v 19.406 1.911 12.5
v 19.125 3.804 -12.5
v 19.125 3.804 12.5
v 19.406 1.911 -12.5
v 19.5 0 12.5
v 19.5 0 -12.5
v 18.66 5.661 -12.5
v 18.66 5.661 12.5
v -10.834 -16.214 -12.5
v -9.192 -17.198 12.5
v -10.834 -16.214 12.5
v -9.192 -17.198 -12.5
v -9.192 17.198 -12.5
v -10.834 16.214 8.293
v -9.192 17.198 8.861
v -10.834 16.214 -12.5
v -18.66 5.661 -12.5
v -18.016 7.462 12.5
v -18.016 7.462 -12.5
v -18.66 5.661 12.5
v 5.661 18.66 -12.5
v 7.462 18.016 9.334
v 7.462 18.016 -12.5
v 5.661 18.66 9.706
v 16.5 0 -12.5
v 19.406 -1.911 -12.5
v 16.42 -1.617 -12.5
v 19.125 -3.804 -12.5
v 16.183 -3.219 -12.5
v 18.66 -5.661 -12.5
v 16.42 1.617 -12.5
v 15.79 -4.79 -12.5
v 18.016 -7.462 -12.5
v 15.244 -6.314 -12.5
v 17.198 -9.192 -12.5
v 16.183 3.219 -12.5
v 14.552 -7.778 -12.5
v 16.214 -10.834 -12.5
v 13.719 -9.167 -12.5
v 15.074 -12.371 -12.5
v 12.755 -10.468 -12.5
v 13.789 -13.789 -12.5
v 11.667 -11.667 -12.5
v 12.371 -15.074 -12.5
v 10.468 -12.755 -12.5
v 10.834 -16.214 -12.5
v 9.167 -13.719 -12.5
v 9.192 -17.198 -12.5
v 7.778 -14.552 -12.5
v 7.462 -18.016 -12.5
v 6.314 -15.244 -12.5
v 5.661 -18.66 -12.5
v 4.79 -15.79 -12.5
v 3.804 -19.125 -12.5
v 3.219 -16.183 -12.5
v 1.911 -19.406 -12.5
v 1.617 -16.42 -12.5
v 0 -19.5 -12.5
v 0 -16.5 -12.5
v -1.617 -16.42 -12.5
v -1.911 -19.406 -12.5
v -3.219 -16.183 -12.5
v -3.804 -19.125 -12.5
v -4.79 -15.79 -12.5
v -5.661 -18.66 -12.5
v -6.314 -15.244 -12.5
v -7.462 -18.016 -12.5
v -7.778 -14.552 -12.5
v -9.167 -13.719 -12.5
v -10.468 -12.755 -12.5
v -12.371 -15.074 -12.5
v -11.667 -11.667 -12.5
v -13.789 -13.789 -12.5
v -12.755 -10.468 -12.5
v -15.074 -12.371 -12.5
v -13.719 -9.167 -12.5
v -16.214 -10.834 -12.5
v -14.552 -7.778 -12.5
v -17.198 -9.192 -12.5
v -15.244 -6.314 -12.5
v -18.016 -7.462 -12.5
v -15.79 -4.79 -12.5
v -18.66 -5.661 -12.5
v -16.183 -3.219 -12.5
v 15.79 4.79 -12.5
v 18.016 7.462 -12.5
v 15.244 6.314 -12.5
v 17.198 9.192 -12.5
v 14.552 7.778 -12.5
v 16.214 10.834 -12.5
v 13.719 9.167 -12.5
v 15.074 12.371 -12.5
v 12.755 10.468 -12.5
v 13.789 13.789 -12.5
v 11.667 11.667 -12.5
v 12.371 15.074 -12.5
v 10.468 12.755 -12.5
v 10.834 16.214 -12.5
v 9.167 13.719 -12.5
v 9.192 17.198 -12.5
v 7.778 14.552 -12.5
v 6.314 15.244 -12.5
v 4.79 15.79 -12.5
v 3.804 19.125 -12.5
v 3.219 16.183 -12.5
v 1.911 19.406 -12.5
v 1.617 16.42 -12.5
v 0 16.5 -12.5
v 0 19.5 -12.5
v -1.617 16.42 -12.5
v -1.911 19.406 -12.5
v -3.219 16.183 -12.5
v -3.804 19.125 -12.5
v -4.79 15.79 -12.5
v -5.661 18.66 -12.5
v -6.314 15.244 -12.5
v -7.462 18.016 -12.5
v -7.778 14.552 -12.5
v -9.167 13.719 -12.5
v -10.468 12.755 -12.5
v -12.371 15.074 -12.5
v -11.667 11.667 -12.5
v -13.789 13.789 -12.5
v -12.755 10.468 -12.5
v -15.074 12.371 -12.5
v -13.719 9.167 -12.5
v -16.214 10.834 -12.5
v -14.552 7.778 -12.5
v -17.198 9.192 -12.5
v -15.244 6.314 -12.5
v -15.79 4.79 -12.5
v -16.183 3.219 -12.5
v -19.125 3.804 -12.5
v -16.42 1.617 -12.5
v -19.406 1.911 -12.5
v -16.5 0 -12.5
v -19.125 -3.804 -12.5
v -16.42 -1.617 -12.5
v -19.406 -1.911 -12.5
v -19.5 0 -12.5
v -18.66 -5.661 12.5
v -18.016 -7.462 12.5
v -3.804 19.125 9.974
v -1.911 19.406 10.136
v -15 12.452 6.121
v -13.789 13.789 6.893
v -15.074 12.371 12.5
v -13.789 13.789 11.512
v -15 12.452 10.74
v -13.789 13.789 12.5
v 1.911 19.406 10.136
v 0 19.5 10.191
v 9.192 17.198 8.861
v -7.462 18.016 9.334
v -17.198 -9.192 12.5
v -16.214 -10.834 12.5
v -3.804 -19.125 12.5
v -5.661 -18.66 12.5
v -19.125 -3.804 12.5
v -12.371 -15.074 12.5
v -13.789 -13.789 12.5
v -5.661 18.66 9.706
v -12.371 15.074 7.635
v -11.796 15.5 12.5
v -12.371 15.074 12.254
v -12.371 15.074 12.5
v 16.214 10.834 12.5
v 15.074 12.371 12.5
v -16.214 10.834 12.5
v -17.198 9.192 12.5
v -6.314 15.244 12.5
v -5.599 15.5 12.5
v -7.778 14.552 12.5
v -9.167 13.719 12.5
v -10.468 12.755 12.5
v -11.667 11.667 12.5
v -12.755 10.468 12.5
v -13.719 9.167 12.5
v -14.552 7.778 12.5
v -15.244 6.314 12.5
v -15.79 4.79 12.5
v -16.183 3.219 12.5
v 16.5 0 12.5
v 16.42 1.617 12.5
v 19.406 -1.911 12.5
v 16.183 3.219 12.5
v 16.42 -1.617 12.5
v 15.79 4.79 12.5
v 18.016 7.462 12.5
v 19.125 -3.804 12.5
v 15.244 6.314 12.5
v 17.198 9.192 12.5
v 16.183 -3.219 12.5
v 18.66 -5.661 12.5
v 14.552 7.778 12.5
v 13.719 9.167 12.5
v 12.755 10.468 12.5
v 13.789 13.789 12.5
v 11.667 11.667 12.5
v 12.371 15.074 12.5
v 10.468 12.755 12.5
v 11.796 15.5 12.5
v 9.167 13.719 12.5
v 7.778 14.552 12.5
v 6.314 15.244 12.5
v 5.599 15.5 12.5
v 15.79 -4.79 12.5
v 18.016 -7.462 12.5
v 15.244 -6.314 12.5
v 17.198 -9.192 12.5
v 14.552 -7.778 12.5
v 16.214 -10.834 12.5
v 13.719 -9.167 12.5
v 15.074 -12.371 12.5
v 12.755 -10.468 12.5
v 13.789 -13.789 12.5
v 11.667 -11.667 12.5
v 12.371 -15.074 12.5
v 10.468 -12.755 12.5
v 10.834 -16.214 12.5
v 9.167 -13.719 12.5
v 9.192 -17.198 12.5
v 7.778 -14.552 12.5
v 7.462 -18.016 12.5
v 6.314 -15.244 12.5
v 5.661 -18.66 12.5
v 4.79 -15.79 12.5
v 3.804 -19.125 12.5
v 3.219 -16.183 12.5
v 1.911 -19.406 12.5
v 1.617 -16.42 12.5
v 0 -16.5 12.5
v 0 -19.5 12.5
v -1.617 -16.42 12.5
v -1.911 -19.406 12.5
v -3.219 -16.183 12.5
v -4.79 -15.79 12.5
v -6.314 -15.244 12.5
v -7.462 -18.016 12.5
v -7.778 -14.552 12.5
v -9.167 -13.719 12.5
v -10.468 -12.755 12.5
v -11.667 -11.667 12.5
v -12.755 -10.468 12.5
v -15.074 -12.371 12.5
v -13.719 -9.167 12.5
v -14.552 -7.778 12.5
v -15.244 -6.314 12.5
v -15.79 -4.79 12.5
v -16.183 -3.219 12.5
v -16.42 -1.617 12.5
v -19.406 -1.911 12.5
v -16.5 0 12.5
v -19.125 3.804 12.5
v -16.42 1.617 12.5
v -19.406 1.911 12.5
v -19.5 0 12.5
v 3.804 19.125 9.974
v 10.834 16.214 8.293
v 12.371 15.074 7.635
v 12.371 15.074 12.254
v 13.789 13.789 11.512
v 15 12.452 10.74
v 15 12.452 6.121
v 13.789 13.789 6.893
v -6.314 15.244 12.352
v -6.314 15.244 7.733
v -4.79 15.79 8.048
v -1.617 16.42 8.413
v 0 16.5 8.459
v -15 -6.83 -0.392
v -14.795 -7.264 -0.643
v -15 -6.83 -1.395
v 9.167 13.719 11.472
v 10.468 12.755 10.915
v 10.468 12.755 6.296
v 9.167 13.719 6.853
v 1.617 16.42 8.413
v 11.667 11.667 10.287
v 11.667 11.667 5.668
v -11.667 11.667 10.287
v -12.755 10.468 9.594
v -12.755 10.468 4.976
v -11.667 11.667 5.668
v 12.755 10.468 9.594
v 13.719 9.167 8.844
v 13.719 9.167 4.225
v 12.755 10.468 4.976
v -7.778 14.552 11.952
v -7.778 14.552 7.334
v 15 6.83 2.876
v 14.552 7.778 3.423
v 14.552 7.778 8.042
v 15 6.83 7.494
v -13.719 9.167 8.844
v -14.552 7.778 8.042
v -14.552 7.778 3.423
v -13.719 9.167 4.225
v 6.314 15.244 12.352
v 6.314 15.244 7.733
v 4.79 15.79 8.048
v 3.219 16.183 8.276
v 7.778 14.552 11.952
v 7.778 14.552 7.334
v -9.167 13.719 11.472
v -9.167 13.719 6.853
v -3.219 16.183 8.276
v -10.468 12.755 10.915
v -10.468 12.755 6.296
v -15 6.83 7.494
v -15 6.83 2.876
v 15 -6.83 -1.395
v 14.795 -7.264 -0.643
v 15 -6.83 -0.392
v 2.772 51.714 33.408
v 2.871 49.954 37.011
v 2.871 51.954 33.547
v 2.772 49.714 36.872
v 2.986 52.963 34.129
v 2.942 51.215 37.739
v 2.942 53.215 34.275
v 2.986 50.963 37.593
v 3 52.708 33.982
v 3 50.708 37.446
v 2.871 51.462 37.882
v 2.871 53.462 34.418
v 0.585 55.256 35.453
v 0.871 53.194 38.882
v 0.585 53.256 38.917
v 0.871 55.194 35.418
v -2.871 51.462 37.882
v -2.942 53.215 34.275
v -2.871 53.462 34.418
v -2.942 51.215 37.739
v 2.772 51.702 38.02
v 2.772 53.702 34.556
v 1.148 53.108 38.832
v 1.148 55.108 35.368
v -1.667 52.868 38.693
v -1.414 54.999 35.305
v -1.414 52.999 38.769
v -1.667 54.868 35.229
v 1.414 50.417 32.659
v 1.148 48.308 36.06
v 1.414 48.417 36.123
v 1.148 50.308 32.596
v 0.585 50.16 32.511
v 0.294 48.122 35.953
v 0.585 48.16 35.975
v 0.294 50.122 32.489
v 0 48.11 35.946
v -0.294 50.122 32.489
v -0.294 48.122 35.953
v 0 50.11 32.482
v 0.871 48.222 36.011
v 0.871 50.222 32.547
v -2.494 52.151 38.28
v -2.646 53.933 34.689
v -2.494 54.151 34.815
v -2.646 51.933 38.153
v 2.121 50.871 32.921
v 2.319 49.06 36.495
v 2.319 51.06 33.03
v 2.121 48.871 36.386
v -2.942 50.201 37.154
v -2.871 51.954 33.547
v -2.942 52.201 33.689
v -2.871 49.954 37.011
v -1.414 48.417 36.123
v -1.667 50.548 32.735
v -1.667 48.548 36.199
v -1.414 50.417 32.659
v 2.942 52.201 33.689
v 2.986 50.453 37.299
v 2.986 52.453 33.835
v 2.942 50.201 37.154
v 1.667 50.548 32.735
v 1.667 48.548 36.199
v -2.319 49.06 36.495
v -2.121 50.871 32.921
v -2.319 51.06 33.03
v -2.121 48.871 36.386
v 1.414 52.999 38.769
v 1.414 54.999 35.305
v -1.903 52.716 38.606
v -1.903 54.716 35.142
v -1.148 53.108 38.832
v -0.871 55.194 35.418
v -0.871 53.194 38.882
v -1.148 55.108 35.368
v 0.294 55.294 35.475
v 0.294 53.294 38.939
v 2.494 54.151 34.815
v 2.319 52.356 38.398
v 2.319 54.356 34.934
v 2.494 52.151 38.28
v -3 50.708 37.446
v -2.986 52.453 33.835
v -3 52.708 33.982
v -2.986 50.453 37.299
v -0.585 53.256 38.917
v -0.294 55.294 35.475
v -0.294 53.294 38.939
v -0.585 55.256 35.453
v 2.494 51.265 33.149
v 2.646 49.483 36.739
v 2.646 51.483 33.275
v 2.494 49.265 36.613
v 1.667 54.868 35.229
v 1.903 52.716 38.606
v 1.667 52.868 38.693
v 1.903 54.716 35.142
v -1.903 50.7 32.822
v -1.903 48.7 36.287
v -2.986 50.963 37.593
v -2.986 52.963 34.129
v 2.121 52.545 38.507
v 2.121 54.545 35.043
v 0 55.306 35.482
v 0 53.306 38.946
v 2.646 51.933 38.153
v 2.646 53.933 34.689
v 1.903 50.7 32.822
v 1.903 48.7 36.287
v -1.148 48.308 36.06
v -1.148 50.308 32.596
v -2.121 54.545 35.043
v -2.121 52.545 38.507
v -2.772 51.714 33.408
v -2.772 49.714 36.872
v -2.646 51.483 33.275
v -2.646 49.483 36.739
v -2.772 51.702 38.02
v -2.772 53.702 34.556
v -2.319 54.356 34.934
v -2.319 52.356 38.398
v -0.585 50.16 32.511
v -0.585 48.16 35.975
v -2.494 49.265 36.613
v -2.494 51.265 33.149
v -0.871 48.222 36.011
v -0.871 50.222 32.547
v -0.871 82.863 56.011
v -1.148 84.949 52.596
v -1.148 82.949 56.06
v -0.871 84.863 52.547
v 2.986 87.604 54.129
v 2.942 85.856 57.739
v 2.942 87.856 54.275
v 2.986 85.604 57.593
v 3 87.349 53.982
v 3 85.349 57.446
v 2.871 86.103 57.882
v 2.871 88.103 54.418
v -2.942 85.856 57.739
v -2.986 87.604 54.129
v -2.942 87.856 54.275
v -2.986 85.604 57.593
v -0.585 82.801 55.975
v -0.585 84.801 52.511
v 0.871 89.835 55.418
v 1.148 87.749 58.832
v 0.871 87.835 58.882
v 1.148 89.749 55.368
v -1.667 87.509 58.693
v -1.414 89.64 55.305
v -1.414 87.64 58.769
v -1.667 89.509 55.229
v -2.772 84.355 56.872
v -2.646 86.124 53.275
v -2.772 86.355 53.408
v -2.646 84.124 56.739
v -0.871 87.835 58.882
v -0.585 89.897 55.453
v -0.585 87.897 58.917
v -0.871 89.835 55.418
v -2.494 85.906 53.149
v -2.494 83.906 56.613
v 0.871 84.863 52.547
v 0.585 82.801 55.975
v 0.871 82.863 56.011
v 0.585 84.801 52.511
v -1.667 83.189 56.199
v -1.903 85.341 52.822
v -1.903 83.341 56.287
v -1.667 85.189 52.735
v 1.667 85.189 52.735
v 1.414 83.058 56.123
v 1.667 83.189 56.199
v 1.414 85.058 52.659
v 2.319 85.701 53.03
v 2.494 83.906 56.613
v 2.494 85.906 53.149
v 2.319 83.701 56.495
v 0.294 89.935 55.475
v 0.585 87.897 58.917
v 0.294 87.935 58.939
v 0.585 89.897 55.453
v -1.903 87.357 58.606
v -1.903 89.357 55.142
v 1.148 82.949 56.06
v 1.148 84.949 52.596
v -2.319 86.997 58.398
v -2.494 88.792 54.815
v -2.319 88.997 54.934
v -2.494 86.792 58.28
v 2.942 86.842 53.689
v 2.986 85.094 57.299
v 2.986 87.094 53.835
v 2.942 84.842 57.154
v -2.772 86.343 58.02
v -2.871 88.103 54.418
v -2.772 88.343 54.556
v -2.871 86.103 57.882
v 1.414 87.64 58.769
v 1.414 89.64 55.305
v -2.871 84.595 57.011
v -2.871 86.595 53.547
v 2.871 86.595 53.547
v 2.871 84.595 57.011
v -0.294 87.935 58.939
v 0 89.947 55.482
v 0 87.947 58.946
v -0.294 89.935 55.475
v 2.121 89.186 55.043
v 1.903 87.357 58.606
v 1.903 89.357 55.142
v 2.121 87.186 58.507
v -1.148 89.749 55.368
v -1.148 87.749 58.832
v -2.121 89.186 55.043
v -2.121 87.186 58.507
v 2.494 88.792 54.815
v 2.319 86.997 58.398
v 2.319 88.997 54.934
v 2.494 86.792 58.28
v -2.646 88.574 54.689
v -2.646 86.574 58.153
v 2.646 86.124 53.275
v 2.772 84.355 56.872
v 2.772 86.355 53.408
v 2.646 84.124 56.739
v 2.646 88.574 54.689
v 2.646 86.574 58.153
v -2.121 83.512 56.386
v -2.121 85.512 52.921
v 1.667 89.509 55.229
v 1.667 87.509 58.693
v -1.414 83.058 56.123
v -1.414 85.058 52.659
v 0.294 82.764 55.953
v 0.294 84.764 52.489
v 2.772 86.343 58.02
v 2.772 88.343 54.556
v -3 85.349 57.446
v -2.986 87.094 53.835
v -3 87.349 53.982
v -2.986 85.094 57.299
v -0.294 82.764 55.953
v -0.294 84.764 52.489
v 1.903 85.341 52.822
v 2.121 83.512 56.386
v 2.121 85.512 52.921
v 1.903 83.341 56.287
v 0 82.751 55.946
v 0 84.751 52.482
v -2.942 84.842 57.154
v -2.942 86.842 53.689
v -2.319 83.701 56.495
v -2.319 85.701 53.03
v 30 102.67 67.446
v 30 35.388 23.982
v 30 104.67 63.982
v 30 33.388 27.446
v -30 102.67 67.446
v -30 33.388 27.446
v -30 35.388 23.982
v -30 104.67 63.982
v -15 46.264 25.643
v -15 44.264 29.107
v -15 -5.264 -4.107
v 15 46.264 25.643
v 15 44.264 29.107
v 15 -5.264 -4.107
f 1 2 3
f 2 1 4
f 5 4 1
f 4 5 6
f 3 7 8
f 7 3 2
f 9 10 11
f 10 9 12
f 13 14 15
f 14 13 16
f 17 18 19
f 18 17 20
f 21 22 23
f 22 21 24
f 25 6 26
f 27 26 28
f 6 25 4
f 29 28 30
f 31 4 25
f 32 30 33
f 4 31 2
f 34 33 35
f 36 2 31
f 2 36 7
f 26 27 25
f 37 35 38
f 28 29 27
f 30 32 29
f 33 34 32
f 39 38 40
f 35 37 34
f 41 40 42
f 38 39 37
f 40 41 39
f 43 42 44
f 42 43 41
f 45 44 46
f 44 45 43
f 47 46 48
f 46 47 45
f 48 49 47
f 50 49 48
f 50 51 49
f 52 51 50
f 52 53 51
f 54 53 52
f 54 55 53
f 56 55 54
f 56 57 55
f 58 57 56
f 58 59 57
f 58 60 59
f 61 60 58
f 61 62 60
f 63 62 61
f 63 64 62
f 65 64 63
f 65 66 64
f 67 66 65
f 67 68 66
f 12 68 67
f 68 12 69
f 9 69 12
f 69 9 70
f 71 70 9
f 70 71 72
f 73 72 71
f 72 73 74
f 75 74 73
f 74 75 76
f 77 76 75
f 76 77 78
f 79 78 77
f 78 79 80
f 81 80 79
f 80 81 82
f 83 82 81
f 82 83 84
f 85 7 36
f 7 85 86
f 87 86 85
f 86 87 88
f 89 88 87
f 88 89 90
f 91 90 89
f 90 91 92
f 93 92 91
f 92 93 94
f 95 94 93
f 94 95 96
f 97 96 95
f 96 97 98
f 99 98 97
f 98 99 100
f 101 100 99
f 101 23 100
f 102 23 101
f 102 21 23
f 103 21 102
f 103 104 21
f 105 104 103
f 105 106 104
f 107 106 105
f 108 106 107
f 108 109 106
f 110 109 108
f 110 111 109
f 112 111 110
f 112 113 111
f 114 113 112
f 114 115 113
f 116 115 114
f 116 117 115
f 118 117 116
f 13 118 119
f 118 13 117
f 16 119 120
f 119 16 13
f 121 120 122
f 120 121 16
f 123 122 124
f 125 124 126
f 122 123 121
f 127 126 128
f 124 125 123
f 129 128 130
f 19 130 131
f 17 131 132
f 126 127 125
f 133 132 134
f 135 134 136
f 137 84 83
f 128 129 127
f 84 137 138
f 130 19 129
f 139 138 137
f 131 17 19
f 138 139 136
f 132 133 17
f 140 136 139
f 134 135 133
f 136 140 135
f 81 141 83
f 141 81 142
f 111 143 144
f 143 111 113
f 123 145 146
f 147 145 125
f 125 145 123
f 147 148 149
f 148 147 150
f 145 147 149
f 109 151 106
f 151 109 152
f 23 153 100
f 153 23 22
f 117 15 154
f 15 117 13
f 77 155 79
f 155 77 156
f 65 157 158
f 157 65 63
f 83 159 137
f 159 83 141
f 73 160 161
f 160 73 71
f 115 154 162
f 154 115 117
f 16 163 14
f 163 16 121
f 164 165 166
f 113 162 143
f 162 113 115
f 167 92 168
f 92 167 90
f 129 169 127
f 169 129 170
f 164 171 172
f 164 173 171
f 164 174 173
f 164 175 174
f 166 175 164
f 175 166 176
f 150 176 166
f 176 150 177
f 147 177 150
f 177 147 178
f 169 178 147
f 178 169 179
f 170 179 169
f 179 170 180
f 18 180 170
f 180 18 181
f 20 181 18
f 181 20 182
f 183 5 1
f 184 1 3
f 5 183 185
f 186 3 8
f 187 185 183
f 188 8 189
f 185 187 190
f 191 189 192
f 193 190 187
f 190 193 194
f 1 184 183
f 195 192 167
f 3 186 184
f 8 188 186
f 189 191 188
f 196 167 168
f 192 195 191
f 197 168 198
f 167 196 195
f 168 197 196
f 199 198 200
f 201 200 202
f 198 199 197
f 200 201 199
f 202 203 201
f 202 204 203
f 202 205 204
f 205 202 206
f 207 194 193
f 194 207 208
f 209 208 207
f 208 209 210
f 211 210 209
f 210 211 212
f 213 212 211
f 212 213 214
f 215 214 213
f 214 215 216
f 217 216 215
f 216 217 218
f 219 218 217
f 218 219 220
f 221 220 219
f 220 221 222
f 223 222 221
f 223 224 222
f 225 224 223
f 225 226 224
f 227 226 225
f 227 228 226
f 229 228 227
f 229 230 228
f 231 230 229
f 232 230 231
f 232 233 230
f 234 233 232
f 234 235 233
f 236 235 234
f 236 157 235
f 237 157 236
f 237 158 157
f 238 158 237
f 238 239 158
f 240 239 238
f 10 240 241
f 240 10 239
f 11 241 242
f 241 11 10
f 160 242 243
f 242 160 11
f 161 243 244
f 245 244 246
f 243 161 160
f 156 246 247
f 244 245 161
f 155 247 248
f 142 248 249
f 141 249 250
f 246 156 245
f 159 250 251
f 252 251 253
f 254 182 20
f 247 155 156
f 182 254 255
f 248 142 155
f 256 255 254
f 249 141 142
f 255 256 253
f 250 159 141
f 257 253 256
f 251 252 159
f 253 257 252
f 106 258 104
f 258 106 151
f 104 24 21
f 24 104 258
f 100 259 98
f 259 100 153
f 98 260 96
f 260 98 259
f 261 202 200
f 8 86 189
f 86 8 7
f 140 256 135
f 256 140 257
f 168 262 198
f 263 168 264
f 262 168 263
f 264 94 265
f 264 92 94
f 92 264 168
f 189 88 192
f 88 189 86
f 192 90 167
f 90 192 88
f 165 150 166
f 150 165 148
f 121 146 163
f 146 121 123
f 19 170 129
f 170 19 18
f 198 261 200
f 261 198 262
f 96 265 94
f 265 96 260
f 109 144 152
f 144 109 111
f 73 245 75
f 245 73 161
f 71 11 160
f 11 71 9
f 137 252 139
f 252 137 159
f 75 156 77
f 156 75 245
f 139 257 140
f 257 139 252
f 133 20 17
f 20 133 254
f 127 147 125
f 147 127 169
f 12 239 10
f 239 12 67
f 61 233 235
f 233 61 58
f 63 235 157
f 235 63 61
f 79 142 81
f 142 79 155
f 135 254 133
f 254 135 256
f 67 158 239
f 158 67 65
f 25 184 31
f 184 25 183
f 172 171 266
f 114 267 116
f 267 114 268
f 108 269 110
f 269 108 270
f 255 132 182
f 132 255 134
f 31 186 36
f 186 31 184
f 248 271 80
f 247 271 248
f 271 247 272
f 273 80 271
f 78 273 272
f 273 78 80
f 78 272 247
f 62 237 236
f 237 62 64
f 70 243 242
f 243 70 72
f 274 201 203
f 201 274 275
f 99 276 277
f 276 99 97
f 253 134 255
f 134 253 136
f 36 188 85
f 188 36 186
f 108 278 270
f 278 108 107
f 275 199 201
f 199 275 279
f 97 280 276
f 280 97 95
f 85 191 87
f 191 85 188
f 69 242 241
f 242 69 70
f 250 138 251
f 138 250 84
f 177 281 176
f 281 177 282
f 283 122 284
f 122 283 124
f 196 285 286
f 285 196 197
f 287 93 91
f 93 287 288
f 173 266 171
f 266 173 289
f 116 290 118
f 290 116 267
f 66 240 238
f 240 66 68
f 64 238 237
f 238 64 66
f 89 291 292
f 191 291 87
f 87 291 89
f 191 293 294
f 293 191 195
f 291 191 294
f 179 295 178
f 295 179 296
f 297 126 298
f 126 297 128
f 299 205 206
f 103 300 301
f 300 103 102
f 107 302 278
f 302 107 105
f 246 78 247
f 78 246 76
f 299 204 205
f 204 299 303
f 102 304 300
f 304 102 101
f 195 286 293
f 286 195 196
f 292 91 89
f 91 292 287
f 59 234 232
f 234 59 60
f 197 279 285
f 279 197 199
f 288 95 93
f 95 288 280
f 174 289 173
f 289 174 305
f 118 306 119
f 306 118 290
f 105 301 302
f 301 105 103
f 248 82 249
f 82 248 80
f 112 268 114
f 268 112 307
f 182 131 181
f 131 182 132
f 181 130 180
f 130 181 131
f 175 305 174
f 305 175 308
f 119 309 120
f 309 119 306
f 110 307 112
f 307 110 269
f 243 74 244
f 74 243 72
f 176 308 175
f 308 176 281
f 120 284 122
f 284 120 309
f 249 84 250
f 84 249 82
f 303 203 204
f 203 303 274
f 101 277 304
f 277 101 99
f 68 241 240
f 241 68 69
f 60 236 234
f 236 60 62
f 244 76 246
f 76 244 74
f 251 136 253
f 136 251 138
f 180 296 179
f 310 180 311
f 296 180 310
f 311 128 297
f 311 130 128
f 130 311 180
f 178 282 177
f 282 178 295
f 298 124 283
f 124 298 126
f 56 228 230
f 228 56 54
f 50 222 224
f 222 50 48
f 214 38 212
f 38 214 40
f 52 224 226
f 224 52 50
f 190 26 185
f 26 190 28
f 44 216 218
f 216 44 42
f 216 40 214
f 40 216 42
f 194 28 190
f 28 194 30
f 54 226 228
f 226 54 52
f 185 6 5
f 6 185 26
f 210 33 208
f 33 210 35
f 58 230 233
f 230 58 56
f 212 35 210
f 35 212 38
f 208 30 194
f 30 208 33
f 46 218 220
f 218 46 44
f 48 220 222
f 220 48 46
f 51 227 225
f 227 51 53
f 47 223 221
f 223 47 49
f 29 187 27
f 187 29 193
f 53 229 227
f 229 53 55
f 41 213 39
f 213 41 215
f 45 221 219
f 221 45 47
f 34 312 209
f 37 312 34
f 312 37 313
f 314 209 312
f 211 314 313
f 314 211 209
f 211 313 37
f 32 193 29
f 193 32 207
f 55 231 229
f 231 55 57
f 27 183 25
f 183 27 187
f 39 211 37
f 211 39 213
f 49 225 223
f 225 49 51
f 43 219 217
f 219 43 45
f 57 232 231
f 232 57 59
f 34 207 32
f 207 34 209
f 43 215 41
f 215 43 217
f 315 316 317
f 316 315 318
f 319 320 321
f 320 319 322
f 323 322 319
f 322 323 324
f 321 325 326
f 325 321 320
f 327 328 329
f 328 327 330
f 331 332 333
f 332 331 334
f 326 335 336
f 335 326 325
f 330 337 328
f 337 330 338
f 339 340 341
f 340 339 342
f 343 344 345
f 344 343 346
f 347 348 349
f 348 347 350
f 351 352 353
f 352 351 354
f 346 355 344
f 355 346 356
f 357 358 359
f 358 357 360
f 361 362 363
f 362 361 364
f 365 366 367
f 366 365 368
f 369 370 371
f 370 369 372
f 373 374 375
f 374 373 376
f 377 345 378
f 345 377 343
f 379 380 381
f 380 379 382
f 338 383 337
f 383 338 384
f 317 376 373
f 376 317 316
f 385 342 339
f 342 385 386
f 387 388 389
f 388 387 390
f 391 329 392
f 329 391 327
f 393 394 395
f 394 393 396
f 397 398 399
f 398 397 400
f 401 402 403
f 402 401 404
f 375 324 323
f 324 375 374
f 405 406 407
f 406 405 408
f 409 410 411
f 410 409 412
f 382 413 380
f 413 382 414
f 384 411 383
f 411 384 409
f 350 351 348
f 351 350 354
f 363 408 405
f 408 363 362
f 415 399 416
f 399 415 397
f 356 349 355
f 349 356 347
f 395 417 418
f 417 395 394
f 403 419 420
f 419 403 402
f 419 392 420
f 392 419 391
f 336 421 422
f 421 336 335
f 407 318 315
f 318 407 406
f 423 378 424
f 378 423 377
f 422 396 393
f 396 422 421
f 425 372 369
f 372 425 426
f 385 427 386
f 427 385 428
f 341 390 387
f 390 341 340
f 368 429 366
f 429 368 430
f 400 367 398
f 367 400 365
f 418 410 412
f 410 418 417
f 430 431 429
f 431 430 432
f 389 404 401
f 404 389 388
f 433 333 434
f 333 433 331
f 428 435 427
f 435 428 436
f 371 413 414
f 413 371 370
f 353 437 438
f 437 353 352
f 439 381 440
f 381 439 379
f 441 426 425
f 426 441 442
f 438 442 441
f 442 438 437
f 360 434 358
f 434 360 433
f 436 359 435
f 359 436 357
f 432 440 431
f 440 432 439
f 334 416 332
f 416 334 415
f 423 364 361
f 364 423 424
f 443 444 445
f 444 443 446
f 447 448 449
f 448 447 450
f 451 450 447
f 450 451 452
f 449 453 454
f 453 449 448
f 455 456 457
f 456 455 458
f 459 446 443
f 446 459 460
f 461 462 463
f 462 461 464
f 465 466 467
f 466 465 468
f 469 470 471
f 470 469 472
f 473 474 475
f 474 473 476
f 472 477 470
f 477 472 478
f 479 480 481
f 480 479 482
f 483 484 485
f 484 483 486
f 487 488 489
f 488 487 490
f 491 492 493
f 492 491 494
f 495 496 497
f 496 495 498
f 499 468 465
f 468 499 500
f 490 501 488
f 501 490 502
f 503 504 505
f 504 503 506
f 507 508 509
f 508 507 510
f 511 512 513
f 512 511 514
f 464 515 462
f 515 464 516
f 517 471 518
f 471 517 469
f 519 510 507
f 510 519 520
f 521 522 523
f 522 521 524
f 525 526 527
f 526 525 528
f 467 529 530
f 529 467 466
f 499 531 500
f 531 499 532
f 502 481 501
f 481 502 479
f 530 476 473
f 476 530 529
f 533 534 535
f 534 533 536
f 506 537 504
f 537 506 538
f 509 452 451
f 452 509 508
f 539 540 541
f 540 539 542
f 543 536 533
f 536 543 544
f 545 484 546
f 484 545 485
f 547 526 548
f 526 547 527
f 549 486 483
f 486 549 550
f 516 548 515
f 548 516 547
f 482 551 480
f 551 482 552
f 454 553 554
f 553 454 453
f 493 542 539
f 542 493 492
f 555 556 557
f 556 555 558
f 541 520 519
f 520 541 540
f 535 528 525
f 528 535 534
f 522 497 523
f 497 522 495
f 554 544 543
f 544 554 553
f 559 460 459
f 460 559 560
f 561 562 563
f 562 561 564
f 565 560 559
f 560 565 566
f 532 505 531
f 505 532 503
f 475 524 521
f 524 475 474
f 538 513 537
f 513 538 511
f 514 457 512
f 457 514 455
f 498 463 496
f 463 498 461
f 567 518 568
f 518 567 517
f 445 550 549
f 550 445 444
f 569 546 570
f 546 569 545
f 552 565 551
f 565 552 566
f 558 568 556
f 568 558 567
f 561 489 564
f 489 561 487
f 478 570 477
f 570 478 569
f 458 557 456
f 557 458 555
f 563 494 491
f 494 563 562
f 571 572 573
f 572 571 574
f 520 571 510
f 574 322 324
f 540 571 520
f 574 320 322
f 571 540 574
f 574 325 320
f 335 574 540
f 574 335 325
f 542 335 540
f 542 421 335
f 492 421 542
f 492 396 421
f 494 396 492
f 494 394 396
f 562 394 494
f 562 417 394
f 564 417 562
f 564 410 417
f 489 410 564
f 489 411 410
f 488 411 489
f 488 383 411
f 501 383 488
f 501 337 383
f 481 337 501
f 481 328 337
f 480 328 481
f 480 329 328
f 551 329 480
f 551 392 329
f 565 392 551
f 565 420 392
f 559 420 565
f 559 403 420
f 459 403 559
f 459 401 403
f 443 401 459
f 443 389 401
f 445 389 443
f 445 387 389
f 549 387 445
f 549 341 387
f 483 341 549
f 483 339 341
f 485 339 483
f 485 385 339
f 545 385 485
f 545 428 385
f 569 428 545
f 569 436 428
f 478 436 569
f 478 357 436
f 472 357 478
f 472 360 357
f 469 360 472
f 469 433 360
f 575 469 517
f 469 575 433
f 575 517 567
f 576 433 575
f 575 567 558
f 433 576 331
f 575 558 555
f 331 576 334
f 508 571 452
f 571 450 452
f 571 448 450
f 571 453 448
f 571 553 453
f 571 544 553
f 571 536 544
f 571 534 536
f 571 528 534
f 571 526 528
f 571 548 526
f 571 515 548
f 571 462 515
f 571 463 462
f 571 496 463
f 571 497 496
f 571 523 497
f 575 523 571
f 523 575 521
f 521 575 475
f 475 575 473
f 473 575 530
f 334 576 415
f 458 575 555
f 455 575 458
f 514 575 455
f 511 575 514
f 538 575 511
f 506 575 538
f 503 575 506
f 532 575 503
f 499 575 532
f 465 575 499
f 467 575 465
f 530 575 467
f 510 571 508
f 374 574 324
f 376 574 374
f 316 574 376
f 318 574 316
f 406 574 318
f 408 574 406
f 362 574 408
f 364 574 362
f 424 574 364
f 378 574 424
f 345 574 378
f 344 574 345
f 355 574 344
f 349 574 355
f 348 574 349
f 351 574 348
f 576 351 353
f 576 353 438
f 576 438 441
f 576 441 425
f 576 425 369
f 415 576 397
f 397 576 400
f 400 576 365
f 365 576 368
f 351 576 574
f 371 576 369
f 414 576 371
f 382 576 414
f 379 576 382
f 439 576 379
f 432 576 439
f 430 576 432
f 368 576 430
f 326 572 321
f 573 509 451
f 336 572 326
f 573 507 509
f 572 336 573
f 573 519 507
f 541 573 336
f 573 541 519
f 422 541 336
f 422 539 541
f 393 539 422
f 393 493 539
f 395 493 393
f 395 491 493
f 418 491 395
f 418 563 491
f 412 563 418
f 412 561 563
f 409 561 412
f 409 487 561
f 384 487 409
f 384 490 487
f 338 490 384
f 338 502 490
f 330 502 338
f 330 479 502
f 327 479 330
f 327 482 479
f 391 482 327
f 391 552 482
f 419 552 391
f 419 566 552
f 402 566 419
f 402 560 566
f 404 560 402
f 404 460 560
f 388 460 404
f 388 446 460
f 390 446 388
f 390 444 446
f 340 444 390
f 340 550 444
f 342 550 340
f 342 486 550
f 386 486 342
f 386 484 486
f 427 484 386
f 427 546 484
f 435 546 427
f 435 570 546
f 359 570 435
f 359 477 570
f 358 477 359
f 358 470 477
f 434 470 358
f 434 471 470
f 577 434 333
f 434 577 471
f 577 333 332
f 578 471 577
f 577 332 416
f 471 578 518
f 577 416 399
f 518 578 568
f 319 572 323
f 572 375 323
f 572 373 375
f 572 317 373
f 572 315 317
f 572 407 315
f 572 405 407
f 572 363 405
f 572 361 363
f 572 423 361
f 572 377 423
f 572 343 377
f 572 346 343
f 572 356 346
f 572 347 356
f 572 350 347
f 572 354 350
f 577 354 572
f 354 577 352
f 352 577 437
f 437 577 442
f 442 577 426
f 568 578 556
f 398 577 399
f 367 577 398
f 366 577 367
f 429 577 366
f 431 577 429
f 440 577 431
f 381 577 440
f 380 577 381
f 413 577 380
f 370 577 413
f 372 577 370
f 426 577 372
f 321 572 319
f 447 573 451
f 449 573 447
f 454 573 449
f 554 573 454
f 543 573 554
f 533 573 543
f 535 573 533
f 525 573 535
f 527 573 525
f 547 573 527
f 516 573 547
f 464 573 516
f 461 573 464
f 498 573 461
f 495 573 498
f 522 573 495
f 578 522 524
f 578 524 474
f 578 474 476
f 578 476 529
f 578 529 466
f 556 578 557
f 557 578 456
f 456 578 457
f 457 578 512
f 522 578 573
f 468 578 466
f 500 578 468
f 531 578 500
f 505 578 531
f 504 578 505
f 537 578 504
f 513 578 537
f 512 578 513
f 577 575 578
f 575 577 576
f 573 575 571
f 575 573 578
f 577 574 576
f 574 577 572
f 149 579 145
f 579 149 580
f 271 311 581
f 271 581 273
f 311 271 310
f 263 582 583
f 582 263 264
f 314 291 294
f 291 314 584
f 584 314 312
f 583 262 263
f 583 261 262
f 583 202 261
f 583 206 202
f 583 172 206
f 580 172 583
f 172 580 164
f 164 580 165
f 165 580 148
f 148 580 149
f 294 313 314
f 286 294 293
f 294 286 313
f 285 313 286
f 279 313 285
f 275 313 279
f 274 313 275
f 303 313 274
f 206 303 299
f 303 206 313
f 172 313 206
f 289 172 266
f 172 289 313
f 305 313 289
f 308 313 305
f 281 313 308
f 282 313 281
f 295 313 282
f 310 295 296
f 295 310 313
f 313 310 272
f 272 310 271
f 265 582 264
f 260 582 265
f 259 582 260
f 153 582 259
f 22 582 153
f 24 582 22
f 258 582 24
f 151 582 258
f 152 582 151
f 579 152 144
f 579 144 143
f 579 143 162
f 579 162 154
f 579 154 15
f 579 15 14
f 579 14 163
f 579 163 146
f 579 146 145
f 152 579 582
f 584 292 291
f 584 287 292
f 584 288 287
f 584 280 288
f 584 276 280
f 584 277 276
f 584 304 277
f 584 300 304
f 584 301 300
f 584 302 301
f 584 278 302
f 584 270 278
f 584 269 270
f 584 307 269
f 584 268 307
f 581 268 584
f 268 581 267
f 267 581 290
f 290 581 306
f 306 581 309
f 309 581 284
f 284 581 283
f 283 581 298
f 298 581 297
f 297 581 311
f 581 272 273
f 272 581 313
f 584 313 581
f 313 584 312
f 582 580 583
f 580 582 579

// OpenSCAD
// ============================================================
// Parametric Solar Panel Hook for Eave Round Pipe
// For Li-shu: roof orchard small PV / camera mount
// ============================================================

// --- Tunable parameters ---
// angle: tilt angle of the hook arm, 0 ≤ angle ≤ 60 (degrees)
angle = 30;       // tilt angle in degrees, range 0-60

// clamp_d: inner diameter of the pipe clamp in mm, 25-50 default
clamp_d = 33;     // clamp inner diameter, range 20-100 mm

// plate_w: width of the top mounting plate (mm)
plate_w = 60;

// plate_l: length of the top mounting plate (mm)
plate_l = 80;

// plate_t: thickness of the top mounting plate (mm)
plate_t = 4;

// arm_w: width of the angled arm connecting clamp to plate (mm)
arm_w = 30;

// arm_t: thickness of the angled arm (mm)
arm_t = 4;

// clamp_width: width of the U-bolt / clamp band (mm)
clamp_width = 25;

// wall: clamp wall thickness (mm)
wall = 3;

// screw_r: bolt hole radius for clamp (mm)
screw_r = 2.5;

// mount_hole_r: bolt hole radius for panel/camera mount (mm)
mount_hole_r = 3;

// mount_hole_spacing: distance between two mounting holes (mm)
mount_hole_spacing = 40;

// $fn for smooth curves
$fn = 64;

// --- Derived values ---
clamp_r = clamp_d / 2;
arm_angle = angle; // alias for clarity

echo(str("angle=", angle, " deg (range 0..60)"));
echo(str("clamp_d=", clamp_d, " mm (range 20..100)"));

module clamp_half(side) {
    // side: +1 or -1 for the two halves of the clamp
    difference() {
        // Outer arc clamp band
        rotate([0, 0, 0])
        difference() {
            // outer cylinder shell
            translate([0, 0, -clamp_width/2])
                cylinder(r = clamp_r + wall, h = clamp_width, center = false);
            // inner pipe hole
            translate([0, 0, -clamp_width/2 - 1])
                cylinder(r = clamp_r, h = clamp_width + 2, center = false);
            // cut along x-axis to split into two halves (side dependent)
            if (side > 0) {
                translate([0, -clamp_r - wall - 1, -clamp_width/2 - 1])
                    cube([clamp_r + wall + 2, clamp_r + wall + 2, clamp_width + 2]);
            } else {
                translate([0, clamp_r + wall + 1, -clamp_width/2 - 1])
                    cube([clamp_r + wall + 2, clamp_r + wall + 2, clamp_width + 2]);
            }
        }
        // bolt holes through the flange
        for (i = [-1, 1]) {
            translate([i * (clamp_r + wall/2), side * (clamp_r + wall/2 + 1), 0])
                rotate([90, 0, 0])
                cylinder(r = screw_r, h = wall + 4, center = true);
        }
    }
}

module clamp() {
    // Full pipe clamp: two halves
    translate([0, 0, 0]) clamp_half(1);
    translate([0, 0, 0]) clamp_half(-1);
}

module angled_arm() {
    // The angled arm connecting clamp to top plate
    arm_length = clamp_r + wall + 40;
    difference() {
        // Box arm, rotated by angle around X-axis
        translate([0, clamp_r + wall, clamp_width/2])
            rotate([arm_angle, 0, 0])
            translate([0, 0, 0])
            cube([arm_w, arm_length, arm_t], center = true);
        // mounting holes in the arm (lightening optional)
    }
}

module mounting_plate() {
    // Top plate at the end of the angled arm
    arm_length = clamp_r + wall + 40;
    plate_offset = arm_length;
    translate([0, clamp_r + wall, clamp_width/2])
        rotate([arm_angle, 0, 0])
        translate([0, plate_offset, arm_t/2 + plate_t/2])
            difference() {
                cube([plate_w, plate_l, plate_t], center = true);
                // mounting holes for panel/camera
                for (i = [-1, 1]) {
                    translate([0, i * mount_hole_spacing/2, 0])
                        cylinder(r = mount_hole_r, h = plate_t + 2, center = true);
                }
            }
}

// --- Main assembly ---
union() {
    clamp();
    angled_arm();
    mounting_plate();
}
